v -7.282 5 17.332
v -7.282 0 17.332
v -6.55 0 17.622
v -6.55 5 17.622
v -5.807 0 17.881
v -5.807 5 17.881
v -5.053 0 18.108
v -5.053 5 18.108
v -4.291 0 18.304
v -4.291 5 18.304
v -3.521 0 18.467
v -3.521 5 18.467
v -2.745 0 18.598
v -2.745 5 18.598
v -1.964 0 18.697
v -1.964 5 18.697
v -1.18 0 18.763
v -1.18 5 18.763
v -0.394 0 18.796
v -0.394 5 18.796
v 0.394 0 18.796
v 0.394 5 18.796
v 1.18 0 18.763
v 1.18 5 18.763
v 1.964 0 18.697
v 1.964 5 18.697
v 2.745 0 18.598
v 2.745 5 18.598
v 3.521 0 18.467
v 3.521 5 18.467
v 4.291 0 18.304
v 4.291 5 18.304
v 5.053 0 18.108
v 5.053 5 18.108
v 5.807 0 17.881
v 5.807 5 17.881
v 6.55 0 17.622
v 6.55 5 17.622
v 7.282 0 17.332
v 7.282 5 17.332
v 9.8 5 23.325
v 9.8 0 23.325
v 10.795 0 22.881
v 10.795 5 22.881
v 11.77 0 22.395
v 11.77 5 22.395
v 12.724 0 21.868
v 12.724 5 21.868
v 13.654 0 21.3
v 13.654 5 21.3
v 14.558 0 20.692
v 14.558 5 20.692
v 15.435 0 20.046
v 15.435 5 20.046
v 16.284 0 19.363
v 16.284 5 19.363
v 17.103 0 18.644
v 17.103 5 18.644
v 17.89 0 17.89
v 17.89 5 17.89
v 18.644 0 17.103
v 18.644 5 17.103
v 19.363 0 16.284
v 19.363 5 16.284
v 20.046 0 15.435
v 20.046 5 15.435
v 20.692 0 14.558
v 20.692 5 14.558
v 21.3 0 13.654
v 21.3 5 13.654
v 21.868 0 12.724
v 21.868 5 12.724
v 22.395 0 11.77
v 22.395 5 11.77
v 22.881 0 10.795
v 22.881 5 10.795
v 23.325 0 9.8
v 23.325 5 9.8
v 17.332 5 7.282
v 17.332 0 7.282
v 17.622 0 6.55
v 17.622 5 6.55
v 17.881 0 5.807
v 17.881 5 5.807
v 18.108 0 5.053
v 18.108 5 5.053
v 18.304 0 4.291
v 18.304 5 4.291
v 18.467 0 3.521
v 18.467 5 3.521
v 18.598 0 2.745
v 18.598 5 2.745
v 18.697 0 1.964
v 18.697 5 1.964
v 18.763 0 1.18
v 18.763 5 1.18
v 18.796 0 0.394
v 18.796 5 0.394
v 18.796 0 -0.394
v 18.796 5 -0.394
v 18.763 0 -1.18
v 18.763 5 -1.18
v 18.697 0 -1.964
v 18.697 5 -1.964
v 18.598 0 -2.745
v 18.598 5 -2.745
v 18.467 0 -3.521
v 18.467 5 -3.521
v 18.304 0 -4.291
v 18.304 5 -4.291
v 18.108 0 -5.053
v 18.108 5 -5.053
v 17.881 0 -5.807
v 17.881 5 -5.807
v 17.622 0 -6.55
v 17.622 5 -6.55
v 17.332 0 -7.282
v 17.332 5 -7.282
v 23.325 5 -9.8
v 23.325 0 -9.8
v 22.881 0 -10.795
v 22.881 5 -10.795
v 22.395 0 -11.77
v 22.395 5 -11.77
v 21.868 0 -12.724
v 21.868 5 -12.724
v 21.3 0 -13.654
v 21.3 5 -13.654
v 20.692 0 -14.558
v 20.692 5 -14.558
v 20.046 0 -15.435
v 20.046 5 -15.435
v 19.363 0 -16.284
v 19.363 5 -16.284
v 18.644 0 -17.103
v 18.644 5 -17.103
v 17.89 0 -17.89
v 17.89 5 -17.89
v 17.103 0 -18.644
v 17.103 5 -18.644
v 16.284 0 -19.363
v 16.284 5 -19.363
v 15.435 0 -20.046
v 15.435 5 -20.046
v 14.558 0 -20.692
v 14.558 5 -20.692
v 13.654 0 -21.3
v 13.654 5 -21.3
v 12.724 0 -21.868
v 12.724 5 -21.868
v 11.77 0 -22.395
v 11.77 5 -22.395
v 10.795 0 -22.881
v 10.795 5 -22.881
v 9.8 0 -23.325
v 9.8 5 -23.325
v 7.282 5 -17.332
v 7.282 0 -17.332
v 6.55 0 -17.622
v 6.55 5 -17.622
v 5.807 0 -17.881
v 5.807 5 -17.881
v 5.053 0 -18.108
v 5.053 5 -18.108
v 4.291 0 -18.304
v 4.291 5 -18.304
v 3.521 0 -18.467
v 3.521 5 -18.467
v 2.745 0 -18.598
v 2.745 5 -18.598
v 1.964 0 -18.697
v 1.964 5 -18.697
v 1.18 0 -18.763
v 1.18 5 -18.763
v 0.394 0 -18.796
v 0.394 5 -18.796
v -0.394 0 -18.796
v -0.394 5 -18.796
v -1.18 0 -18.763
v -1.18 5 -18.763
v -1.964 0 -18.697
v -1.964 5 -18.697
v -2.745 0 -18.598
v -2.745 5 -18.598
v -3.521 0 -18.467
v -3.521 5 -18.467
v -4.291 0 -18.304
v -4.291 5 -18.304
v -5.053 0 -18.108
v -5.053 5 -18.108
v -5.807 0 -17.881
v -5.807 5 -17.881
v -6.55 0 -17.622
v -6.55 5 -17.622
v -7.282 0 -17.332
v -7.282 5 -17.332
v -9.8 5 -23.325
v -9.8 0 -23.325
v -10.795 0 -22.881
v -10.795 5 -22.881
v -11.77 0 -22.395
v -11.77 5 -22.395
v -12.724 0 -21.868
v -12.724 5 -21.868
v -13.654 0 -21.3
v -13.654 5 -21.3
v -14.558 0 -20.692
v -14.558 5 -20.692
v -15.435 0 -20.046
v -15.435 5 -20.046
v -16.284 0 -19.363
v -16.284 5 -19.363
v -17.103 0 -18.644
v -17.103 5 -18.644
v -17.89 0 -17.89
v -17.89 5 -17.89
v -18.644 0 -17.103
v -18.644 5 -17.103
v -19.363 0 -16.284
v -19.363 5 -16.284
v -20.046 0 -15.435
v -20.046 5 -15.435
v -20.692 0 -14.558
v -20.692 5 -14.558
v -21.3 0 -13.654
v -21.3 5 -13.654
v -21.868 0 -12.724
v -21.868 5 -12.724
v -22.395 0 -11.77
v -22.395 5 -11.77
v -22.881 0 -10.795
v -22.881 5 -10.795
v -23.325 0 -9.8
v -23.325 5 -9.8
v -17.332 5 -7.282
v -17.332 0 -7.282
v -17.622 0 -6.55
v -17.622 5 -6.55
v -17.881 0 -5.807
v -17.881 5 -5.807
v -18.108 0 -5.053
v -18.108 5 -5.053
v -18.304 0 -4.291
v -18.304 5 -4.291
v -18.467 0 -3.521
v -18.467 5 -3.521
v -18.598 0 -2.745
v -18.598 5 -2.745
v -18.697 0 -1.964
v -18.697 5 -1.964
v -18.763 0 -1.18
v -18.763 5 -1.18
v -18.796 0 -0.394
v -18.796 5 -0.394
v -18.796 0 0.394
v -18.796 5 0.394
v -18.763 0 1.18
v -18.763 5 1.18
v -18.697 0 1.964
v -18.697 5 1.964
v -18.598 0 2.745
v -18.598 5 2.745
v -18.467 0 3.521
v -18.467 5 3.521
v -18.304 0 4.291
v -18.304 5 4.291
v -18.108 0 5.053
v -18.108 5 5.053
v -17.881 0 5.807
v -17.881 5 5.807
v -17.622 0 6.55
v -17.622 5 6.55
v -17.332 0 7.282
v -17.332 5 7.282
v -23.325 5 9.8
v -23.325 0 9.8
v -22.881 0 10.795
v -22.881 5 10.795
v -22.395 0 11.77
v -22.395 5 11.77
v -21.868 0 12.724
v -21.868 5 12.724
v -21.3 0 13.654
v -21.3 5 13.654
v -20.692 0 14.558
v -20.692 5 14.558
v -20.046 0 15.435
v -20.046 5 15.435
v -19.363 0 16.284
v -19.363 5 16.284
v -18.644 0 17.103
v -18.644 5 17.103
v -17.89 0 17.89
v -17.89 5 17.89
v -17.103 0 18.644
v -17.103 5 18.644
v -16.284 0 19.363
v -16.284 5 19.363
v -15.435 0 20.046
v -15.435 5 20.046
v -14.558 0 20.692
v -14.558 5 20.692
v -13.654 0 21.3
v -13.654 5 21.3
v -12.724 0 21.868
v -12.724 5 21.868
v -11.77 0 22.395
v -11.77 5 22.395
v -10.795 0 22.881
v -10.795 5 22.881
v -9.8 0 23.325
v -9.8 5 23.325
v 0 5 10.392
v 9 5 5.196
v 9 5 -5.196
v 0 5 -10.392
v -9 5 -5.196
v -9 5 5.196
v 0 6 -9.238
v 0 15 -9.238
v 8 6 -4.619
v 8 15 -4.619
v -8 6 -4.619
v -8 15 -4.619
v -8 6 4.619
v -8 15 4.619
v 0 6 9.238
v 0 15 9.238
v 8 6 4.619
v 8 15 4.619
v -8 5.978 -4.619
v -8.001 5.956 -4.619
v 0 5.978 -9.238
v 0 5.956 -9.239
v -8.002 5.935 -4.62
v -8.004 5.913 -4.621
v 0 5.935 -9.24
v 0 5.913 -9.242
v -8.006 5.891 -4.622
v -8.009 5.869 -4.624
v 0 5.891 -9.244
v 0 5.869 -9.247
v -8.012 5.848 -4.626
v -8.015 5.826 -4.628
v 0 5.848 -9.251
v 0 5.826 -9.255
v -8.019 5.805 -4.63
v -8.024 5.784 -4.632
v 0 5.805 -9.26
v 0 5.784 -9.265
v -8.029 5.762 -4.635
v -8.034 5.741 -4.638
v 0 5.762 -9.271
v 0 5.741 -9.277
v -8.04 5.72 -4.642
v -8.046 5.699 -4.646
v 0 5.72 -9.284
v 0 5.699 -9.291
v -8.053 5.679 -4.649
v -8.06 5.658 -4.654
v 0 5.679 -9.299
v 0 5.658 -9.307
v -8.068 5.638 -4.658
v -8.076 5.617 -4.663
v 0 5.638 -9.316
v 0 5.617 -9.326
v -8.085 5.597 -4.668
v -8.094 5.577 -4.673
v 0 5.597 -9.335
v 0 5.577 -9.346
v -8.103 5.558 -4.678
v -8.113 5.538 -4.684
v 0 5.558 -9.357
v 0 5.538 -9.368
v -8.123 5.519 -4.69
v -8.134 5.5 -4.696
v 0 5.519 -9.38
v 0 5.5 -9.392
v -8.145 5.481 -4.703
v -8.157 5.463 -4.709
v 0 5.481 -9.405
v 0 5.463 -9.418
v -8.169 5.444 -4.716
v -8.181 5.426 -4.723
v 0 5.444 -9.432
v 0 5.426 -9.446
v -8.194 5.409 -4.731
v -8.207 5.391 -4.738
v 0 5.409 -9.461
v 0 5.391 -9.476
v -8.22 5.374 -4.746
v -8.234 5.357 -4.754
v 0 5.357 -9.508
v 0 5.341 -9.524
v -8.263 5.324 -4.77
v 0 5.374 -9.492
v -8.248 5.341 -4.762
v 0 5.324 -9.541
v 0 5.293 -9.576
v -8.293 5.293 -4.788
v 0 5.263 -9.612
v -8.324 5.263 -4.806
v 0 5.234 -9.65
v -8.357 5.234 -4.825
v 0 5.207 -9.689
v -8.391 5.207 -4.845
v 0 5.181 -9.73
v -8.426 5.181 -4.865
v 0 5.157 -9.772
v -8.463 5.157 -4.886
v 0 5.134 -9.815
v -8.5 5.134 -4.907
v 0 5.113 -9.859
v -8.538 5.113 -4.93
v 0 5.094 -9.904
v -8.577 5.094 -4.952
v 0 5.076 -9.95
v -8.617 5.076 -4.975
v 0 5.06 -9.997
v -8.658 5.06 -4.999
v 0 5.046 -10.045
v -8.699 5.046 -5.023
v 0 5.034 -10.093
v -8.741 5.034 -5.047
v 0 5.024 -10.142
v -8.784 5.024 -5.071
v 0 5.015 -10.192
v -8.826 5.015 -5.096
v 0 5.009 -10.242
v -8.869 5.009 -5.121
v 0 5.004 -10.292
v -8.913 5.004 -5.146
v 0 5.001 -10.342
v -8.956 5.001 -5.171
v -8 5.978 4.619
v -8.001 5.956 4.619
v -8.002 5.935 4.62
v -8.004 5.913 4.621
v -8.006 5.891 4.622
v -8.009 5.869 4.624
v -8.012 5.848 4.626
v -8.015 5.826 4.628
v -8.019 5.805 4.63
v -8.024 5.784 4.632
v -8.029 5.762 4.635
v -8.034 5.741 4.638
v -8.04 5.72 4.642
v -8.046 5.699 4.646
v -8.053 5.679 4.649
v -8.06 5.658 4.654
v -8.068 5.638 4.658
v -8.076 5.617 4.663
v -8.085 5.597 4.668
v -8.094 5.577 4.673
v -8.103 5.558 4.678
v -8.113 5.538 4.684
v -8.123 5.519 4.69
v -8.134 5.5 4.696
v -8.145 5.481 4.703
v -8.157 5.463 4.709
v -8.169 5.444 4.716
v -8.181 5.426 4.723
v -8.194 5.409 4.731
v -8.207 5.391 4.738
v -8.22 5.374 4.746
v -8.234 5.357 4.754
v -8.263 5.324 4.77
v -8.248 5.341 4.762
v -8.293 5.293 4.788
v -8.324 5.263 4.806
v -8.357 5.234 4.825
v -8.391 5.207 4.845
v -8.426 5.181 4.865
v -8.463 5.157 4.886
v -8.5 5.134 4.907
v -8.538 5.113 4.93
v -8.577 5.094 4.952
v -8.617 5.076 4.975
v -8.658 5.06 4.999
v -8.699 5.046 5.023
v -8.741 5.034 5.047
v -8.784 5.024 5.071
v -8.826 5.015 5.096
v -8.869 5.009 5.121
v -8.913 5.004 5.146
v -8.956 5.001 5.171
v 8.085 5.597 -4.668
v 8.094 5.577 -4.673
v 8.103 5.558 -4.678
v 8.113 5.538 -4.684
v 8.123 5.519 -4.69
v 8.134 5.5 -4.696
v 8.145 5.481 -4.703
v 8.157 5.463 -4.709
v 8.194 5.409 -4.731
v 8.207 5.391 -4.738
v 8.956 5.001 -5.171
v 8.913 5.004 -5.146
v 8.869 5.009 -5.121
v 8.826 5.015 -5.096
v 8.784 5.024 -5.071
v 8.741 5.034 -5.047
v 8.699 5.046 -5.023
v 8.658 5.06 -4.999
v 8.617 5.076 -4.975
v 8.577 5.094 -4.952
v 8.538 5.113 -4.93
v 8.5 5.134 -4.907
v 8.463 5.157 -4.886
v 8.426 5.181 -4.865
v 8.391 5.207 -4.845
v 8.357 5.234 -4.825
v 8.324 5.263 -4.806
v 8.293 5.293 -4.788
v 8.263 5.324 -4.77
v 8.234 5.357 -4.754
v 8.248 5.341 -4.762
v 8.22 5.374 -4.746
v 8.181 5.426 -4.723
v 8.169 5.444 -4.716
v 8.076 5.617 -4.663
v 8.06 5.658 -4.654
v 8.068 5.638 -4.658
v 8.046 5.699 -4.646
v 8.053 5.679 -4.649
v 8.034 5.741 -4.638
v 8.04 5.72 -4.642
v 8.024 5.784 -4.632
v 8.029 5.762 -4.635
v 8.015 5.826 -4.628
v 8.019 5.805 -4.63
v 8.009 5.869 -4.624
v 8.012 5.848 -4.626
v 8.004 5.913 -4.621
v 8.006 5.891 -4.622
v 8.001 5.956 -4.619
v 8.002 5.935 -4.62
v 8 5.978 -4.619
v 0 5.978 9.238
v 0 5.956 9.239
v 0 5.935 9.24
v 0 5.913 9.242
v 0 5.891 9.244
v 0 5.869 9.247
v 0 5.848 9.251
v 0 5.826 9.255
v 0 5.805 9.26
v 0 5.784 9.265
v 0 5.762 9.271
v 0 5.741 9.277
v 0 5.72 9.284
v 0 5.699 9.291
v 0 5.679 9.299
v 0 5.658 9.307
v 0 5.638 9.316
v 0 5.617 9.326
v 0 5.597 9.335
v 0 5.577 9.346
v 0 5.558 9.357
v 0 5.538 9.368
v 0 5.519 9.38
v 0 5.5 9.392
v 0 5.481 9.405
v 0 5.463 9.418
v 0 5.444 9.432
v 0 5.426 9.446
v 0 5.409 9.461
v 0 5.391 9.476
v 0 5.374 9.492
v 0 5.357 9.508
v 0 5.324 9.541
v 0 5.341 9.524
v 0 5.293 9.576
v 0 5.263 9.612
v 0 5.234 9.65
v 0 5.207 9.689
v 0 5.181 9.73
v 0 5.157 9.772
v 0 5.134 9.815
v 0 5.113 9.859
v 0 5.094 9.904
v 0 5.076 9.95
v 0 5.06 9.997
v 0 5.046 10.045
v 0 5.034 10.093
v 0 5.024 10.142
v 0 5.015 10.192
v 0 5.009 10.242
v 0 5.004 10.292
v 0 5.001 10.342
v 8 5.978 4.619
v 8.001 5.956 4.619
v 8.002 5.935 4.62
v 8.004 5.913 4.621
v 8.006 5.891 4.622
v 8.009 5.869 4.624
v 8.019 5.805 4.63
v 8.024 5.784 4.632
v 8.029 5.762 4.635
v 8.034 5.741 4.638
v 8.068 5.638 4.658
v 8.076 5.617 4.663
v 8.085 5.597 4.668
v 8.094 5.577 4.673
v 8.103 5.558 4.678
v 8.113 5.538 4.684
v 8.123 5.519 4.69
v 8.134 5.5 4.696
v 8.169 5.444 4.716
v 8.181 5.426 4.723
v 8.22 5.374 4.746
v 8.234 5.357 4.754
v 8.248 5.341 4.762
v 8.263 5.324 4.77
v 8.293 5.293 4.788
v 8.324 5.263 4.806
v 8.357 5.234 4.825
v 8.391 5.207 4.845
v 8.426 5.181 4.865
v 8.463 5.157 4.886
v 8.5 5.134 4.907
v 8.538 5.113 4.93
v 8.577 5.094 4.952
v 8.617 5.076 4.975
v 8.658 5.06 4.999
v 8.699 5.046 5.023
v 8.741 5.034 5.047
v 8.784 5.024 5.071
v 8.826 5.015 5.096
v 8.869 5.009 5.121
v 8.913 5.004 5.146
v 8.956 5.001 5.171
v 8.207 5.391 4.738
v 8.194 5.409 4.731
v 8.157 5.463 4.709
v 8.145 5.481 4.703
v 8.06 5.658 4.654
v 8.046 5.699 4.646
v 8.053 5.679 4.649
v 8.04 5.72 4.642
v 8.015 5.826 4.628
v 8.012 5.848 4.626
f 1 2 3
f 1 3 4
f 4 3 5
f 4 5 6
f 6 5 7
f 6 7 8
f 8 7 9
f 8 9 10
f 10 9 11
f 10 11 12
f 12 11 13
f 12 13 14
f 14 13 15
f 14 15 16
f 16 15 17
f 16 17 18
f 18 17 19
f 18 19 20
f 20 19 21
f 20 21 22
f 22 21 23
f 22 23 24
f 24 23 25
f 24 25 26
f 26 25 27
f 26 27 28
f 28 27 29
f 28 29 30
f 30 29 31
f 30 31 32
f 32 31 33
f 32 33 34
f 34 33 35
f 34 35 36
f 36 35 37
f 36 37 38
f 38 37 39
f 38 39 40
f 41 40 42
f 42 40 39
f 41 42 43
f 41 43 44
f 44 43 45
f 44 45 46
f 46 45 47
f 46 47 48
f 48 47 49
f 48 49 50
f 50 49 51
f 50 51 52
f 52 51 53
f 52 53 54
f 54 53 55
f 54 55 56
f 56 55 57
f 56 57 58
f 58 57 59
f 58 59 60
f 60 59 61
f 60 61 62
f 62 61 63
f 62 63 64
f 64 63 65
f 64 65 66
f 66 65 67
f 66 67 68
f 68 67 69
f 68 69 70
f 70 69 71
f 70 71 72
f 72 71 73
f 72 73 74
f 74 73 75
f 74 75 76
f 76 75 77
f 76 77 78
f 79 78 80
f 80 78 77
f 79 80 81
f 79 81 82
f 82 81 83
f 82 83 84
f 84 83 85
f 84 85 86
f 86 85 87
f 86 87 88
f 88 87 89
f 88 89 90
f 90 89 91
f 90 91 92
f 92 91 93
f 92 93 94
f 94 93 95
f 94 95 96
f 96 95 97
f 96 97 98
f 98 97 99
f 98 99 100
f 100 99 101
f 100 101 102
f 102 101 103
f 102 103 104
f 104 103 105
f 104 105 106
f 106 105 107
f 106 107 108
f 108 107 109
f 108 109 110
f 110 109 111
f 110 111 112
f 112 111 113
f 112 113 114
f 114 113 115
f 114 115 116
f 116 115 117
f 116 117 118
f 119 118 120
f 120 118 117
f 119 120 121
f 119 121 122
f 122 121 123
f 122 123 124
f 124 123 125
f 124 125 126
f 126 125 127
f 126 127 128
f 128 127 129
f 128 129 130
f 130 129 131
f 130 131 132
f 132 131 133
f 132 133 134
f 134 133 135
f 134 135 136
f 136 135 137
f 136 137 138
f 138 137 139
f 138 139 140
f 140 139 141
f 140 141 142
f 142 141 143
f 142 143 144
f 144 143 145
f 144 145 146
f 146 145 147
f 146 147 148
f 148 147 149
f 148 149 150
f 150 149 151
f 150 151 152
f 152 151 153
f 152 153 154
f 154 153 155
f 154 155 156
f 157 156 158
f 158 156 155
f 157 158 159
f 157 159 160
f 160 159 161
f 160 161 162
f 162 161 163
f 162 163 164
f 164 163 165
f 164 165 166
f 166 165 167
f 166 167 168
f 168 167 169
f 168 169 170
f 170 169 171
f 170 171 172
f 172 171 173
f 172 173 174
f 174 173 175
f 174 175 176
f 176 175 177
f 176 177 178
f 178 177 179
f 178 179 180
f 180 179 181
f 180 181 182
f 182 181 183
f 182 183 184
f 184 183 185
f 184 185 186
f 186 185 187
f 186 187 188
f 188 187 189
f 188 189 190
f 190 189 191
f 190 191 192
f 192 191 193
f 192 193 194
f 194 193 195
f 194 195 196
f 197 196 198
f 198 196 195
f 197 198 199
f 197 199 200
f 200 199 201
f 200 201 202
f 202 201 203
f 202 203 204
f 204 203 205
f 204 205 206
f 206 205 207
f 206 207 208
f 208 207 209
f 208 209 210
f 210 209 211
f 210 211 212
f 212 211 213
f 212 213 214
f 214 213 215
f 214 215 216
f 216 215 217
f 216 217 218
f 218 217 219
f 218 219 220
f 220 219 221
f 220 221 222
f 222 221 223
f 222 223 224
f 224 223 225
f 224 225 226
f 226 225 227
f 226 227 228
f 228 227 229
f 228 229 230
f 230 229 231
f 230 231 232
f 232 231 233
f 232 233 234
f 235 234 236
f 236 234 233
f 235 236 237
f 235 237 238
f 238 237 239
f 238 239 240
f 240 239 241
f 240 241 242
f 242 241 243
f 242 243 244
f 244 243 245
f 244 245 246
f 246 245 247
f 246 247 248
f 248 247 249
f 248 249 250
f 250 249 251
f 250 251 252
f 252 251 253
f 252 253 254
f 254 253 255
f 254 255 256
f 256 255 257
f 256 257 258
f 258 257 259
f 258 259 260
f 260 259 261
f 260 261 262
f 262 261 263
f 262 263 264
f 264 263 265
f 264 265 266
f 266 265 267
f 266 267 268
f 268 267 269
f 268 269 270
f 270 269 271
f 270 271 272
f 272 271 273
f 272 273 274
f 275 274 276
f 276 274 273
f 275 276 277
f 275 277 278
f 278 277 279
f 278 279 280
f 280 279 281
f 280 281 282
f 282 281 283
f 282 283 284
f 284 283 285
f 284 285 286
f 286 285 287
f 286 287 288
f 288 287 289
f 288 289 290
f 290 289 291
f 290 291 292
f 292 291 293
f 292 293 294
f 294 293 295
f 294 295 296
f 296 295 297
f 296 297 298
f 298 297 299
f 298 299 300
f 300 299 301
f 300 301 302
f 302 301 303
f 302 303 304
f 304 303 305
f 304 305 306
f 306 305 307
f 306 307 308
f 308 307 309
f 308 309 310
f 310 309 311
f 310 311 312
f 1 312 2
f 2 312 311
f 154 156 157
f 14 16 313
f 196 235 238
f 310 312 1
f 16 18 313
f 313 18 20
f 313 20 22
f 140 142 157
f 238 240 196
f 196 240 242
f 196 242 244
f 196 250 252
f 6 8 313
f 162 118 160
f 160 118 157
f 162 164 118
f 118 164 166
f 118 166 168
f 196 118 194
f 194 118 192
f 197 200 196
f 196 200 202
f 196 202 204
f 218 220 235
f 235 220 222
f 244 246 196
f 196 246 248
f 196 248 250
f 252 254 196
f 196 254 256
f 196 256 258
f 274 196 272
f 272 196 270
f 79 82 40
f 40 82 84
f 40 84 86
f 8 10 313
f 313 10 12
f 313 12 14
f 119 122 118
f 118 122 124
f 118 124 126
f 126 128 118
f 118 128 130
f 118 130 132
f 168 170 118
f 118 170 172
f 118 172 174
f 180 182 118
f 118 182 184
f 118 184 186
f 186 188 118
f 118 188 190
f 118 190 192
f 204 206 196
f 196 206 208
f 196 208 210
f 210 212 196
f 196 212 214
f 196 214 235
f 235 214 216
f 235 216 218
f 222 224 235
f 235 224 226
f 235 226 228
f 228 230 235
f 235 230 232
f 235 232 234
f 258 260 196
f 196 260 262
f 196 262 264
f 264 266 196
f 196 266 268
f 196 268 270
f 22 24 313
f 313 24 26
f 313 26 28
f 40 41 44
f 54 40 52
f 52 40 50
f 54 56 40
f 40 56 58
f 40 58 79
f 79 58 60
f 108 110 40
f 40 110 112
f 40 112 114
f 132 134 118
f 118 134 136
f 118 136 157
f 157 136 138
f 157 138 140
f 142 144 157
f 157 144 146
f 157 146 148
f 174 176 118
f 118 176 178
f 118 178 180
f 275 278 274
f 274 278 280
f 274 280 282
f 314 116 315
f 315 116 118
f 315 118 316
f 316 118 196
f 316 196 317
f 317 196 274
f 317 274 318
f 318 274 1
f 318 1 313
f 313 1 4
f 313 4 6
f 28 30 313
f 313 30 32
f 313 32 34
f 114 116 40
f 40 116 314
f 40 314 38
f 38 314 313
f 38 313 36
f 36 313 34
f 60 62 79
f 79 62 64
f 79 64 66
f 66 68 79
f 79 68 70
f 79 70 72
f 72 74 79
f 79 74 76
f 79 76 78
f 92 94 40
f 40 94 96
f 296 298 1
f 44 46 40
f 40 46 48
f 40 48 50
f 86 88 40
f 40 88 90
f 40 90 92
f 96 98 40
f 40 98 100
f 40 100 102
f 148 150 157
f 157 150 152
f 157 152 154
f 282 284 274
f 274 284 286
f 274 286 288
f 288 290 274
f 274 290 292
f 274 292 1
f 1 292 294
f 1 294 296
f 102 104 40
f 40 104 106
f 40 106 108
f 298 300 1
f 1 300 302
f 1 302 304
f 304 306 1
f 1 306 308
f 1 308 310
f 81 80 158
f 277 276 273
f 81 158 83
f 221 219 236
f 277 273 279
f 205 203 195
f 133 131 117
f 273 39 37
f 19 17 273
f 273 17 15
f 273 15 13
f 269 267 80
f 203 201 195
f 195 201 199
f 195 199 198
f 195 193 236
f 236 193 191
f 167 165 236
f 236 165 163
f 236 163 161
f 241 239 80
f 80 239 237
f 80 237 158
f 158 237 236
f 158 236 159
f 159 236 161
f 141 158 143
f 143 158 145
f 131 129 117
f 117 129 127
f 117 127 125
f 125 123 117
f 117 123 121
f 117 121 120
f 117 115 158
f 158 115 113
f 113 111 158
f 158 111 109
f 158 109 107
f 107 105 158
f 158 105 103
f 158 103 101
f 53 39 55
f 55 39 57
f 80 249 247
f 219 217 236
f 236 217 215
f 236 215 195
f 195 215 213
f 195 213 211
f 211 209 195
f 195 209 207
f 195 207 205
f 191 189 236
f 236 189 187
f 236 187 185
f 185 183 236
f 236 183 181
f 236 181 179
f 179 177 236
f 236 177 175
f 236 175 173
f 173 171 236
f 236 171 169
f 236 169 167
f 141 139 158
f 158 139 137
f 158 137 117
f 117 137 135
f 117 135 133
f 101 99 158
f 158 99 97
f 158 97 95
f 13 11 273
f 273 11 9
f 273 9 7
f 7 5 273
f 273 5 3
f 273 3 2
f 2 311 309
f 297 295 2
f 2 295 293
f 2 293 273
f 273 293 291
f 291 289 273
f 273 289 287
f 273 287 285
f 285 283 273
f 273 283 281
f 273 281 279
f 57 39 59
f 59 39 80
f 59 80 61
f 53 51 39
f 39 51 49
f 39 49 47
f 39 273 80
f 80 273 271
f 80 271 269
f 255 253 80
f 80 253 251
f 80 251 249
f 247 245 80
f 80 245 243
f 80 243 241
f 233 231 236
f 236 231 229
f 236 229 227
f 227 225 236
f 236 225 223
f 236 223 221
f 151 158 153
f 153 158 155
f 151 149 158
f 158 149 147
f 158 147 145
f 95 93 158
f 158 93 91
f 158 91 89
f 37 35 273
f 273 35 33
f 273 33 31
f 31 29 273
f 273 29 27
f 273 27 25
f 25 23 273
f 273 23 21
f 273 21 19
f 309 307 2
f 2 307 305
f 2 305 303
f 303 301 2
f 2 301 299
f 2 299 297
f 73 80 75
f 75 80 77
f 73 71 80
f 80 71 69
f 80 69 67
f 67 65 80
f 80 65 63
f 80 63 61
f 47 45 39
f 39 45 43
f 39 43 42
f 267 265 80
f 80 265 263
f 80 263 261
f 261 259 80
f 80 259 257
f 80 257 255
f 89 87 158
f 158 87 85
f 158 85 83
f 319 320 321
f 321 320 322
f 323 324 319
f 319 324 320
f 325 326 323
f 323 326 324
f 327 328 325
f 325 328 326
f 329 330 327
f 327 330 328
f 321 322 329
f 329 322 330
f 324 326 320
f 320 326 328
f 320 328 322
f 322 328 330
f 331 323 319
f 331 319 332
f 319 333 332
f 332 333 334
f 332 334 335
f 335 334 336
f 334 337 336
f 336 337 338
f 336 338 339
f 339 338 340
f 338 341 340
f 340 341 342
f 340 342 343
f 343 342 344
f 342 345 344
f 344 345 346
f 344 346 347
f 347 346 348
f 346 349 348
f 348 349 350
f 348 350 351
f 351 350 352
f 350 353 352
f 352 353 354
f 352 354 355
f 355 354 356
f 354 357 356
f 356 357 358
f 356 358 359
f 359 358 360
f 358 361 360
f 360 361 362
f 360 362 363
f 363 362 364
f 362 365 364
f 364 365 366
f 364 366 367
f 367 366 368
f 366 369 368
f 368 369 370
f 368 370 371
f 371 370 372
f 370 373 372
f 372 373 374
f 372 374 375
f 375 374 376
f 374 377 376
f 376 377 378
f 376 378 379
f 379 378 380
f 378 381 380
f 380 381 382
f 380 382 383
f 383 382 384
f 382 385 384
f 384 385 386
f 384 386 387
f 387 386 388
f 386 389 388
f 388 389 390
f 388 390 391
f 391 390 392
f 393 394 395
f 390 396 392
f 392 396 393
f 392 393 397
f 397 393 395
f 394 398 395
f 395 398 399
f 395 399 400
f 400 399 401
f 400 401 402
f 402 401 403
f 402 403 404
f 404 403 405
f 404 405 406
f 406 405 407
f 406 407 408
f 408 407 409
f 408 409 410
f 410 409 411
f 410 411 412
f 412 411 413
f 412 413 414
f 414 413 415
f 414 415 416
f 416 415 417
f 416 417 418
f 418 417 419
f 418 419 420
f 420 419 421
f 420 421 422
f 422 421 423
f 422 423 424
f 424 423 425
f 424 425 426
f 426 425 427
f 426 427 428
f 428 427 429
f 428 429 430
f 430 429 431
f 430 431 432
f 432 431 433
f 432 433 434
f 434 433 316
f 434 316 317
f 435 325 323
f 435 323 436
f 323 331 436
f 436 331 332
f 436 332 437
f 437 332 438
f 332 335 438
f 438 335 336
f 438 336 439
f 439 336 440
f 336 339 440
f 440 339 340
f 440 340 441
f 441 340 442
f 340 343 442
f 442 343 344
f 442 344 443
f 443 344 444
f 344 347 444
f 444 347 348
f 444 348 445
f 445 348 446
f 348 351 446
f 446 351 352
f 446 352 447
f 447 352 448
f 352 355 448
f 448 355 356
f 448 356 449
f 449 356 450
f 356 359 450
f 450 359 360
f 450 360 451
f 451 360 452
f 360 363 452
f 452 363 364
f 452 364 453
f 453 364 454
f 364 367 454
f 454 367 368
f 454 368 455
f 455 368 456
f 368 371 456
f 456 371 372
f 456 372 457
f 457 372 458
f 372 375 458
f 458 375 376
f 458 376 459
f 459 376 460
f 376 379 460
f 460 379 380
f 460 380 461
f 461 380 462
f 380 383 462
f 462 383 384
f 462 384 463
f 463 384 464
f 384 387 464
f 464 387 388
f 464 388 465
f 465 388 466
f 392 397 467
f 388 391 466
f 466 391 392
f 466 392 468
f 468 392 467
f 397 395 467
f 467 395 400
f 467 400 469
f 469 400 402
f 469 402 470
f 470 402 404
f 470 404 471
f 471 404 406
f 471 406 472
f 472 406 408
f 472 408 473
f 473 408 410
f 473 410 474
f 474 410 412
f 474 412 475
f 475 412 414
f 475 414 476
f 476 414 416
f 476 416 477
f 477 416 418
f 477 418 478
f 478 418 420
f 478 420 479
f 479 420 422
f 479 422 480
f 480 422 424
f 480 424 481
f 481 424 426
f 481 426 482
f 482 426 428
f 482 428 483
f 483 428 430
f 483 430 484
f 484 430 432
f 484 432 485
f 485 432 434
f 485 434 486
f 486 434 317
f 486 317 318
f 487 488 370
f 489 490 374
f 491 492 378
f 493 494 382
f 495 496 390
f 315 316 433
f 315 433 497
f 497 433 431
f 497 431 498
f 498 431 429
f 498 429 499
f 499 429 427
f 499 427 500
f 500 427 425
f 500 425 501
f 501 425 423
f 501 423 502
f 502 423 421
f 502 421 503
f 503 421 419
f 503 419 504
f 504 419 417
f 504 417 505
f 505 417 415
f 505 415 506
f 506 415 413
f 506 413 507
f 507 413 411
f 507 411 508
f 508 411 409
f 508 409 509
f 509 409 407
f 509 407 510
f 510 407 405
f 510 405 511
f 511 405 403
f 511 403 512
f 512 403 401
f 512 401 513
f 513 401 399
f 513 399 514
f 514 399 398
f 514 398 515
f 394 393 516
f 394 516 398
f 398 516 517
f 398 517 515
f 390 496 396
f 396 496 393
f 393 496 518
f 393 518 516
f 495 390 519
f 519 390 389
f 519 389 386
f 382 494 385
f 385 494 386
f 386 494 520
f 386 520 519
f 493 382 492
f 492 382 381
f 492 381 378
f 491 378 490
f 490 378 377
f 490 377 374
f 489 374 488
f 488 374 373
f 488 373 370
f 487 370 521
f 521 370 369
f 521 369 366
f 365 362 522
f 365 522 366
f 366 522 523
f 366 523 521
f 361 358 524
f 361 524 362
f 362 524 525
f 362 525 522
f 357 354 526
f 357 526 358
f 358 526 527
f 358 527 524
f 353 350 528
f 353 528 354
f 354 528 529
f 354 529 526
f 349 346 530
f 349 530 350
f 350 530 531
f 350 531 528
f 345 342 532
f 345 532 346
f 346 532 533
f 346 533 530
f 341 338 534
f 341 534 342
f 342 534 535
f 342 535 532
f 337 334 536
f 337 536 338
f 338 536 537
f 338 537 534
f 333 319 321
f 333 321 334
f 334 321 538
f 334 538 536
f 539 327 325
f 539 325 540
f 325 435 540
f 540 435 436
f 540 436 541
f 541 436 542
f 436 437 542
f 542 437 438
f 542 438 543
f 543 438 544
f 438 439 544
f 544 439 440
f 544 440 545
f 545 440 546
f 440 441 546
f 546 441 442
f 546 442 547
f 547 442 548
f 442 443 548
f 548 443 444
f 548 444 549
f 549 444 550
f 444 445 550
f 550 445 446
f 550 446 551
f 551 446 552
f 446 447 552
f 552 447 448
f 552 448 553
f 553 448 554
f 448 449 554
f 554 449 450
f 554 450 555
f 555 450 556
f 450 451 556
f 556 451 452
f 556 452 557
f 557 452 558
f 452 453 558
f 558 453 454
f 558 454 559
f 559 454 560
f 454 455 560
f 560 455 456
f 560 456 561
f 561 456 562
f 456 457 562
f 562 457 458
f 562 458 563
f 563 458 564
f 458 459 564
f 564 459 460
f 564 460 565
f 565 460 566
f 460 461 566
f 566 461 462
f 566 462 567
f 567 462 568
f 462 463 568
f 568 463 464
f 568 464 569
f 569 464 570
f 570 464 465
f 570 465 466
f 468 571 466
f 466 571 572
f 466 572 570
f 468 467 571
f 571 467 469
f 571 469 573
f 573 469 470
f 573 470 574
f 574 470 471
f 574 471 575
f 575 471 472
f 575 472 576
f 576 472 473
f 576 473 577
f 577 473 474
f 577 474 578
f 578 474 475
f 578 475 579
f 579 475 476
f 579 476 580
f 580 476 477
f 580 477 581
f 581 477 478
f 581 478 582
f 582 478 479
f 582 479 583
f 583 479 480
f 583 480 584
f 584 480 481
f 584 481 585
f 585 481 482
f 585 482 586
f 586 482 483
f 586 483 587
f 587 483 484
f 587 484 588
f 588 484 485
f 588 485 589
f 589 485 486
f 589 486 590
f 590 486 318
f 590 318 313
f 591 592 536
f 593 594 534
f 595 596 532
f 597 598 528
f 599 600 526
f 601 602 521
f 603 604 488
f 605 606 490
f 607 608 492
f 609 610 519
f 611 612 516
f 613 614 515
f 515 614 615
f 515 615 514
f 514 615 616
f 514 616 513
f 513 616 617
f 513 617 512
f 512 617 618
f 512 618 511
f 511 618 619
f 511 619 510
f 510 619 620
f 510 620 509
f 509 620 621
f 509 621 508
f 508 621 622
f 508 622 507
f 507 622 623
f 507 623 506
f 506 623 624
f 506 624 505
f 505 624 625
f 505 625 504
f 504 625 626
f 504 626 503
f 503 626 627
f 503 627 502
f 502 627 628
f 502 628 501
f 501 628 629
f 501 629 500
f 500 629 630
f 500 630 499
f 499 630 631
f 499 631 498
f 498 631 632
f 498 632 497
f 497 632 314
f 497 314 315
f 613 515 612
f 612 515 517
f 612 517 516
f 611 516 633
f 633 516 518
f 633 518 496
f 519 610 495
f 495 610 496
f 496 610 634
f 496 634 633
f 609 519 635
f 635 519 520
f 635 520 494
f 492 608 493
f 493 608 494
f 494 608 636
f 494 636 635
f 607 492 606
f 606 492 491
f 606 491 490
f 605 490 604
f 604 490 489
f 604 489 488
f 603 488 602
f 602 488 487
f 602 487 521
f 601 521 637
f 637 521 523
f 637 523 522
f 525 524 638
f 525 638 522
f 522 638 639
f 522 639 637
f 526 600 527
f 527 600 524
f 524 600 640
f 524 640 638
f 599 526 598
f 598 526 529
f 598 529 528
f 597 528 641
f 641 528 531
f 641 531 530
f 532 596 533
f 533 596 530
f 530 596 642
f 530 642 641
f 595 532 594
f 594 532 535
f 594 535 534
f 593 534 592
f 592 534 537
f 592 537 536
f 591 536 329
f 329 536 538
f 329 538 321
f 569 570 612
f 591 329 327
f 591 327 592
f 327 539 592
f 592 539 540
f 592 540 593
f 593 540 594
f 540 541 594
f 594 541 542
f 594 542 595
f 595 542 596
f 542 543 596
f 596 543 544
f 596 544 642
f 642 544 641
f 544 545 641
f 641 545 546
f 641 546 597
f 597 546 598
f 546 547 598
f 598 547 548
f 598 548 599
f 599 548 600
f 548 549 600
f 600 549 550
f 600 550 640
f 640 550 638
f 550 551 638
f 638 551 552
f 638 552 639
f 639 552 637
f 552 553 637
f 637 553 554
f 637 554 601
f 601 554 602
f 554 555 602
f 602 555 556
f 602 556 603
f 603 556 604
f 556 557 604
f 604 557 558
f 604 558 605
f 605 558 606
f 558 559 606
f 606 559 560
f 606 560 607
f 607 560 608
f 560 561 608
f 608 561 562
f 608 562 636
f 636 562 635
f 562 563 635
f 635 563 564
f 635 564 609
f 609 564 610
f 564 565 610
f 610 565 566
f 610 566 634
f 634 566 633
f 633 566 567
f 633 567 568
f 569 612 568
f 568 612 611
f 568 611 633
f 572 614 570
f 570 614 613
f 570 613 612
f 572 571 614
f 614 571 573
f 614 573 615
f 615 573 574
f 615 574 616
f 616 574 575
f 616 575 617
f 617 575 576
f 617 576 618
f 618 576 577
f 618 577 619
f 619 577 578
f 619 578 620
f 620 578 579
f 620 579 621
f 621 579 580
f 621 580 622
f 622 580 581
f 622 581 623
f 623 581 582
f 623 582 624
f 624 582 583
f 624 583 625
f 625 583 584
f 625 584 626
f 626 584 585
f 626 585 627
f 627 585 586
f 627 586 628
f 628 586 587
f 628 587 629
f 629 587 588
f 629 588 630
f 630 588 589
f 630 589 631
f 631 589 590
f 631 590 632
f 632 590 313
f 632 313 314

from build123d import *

# Parameters (mm, degrees)
BOSS_EXTRUDE1_DEPTH = 5
BOSS_EXTRUDE2_DEPTH = 10
FILLET3_R           = 1


with BuildPart() as part:
    # Sketch2 → Boss-Extrude1 (new body)
    with BuildSketch(Plane(origin=(0, 0, 0), x_dir=(1, 0, 0), z_dir=(0, 1, 0))):
        with BuildLine():
            Line((-23.324879421, 9.8), (-17.332321467, 7.282213439))
            ThreePointArc((-17.332321467, 7.282213439), (-18.8, 0), (-17.332321467, -7.282213439))
            Line((-17.332321467, -7.282213439), (-23.324879421, -9.8))
            ThreePointArc((-23.324879421, -9.8), (-17.889801564, -17.889801564), (-9.8, -23.324879421))
            Line((-9.8, -23.324879421), (-7.282213439, -17.332321467))
            ThreePointArc((-7.282213439, -17.332321467), (0, -18.8), (7.282213439, -17.332321467))
            Line((7.282213439, -17.332321467), (9.8, -23.324879421))
            ThreePointArc((9.8, -23.324879421), (17.889801564, -17.889801564), (23.324879421, -9.8))
            Line((23.324879421, -9.8), (17.332321467, -7.282213439))
            ThreePointArc((17.332321467, -7.282213439), (18.8, 0), (17.332321467, 7.282213439))
            Line((17.332321467, 7.282213439), (23.324879421, 9.8))
            ThreePointArc((23.324879421, 9.8), (17.889801564, 17.889801564), (9.8, 23.324879421))
            Line((9.8, 23.324879421), (7.282213439, 17.332321467))
            ThreePointArc((7.282213439, 17.332321467), (0, 18.8), (-7.282213439, 17.332321467))
            Line((-7.282213439, 17.332321467), (-9.8, 23.324879421))
            ThreePointArc((-9.8, 23.324879421), (-17.889801564, 17.889801564), (-23.324879421, 9.8))
        make_face()
    extrude(amount=BOSS_EXTRUDE1_DEPTH)

    # Sketch3 → Boss-Extrude2 (add)
    with BuildSketch(Plane(origin=(0, 5, 0), x_dir=(1, 0, 0), z_dir=(0, 1, 0))):
        Polygon((0, 9.237604307), (-8, 4.618802154), (-8, -4.618802154), (0, -9.237604307), (8, -4.618802154), (8, 4.618802154), align=None)
    extrude(amount=BOSS_EXTRUDE2_DEPTH)

    # Fillet3
    fillet3_edges = [part.edges().sort_by_distance(p)[0] for p in [
        (4, 5, -6.92820323),
        (-4, 5, -6.92820323),
        (-8, 5, 0),
        (-4, 5, 6.92820323),
        (4, 5, 6.92820323),
        (8, 5, 0),
    ]]
    fillet(fillet3_edges, radius=FILLET3_R)


solid = part.part
